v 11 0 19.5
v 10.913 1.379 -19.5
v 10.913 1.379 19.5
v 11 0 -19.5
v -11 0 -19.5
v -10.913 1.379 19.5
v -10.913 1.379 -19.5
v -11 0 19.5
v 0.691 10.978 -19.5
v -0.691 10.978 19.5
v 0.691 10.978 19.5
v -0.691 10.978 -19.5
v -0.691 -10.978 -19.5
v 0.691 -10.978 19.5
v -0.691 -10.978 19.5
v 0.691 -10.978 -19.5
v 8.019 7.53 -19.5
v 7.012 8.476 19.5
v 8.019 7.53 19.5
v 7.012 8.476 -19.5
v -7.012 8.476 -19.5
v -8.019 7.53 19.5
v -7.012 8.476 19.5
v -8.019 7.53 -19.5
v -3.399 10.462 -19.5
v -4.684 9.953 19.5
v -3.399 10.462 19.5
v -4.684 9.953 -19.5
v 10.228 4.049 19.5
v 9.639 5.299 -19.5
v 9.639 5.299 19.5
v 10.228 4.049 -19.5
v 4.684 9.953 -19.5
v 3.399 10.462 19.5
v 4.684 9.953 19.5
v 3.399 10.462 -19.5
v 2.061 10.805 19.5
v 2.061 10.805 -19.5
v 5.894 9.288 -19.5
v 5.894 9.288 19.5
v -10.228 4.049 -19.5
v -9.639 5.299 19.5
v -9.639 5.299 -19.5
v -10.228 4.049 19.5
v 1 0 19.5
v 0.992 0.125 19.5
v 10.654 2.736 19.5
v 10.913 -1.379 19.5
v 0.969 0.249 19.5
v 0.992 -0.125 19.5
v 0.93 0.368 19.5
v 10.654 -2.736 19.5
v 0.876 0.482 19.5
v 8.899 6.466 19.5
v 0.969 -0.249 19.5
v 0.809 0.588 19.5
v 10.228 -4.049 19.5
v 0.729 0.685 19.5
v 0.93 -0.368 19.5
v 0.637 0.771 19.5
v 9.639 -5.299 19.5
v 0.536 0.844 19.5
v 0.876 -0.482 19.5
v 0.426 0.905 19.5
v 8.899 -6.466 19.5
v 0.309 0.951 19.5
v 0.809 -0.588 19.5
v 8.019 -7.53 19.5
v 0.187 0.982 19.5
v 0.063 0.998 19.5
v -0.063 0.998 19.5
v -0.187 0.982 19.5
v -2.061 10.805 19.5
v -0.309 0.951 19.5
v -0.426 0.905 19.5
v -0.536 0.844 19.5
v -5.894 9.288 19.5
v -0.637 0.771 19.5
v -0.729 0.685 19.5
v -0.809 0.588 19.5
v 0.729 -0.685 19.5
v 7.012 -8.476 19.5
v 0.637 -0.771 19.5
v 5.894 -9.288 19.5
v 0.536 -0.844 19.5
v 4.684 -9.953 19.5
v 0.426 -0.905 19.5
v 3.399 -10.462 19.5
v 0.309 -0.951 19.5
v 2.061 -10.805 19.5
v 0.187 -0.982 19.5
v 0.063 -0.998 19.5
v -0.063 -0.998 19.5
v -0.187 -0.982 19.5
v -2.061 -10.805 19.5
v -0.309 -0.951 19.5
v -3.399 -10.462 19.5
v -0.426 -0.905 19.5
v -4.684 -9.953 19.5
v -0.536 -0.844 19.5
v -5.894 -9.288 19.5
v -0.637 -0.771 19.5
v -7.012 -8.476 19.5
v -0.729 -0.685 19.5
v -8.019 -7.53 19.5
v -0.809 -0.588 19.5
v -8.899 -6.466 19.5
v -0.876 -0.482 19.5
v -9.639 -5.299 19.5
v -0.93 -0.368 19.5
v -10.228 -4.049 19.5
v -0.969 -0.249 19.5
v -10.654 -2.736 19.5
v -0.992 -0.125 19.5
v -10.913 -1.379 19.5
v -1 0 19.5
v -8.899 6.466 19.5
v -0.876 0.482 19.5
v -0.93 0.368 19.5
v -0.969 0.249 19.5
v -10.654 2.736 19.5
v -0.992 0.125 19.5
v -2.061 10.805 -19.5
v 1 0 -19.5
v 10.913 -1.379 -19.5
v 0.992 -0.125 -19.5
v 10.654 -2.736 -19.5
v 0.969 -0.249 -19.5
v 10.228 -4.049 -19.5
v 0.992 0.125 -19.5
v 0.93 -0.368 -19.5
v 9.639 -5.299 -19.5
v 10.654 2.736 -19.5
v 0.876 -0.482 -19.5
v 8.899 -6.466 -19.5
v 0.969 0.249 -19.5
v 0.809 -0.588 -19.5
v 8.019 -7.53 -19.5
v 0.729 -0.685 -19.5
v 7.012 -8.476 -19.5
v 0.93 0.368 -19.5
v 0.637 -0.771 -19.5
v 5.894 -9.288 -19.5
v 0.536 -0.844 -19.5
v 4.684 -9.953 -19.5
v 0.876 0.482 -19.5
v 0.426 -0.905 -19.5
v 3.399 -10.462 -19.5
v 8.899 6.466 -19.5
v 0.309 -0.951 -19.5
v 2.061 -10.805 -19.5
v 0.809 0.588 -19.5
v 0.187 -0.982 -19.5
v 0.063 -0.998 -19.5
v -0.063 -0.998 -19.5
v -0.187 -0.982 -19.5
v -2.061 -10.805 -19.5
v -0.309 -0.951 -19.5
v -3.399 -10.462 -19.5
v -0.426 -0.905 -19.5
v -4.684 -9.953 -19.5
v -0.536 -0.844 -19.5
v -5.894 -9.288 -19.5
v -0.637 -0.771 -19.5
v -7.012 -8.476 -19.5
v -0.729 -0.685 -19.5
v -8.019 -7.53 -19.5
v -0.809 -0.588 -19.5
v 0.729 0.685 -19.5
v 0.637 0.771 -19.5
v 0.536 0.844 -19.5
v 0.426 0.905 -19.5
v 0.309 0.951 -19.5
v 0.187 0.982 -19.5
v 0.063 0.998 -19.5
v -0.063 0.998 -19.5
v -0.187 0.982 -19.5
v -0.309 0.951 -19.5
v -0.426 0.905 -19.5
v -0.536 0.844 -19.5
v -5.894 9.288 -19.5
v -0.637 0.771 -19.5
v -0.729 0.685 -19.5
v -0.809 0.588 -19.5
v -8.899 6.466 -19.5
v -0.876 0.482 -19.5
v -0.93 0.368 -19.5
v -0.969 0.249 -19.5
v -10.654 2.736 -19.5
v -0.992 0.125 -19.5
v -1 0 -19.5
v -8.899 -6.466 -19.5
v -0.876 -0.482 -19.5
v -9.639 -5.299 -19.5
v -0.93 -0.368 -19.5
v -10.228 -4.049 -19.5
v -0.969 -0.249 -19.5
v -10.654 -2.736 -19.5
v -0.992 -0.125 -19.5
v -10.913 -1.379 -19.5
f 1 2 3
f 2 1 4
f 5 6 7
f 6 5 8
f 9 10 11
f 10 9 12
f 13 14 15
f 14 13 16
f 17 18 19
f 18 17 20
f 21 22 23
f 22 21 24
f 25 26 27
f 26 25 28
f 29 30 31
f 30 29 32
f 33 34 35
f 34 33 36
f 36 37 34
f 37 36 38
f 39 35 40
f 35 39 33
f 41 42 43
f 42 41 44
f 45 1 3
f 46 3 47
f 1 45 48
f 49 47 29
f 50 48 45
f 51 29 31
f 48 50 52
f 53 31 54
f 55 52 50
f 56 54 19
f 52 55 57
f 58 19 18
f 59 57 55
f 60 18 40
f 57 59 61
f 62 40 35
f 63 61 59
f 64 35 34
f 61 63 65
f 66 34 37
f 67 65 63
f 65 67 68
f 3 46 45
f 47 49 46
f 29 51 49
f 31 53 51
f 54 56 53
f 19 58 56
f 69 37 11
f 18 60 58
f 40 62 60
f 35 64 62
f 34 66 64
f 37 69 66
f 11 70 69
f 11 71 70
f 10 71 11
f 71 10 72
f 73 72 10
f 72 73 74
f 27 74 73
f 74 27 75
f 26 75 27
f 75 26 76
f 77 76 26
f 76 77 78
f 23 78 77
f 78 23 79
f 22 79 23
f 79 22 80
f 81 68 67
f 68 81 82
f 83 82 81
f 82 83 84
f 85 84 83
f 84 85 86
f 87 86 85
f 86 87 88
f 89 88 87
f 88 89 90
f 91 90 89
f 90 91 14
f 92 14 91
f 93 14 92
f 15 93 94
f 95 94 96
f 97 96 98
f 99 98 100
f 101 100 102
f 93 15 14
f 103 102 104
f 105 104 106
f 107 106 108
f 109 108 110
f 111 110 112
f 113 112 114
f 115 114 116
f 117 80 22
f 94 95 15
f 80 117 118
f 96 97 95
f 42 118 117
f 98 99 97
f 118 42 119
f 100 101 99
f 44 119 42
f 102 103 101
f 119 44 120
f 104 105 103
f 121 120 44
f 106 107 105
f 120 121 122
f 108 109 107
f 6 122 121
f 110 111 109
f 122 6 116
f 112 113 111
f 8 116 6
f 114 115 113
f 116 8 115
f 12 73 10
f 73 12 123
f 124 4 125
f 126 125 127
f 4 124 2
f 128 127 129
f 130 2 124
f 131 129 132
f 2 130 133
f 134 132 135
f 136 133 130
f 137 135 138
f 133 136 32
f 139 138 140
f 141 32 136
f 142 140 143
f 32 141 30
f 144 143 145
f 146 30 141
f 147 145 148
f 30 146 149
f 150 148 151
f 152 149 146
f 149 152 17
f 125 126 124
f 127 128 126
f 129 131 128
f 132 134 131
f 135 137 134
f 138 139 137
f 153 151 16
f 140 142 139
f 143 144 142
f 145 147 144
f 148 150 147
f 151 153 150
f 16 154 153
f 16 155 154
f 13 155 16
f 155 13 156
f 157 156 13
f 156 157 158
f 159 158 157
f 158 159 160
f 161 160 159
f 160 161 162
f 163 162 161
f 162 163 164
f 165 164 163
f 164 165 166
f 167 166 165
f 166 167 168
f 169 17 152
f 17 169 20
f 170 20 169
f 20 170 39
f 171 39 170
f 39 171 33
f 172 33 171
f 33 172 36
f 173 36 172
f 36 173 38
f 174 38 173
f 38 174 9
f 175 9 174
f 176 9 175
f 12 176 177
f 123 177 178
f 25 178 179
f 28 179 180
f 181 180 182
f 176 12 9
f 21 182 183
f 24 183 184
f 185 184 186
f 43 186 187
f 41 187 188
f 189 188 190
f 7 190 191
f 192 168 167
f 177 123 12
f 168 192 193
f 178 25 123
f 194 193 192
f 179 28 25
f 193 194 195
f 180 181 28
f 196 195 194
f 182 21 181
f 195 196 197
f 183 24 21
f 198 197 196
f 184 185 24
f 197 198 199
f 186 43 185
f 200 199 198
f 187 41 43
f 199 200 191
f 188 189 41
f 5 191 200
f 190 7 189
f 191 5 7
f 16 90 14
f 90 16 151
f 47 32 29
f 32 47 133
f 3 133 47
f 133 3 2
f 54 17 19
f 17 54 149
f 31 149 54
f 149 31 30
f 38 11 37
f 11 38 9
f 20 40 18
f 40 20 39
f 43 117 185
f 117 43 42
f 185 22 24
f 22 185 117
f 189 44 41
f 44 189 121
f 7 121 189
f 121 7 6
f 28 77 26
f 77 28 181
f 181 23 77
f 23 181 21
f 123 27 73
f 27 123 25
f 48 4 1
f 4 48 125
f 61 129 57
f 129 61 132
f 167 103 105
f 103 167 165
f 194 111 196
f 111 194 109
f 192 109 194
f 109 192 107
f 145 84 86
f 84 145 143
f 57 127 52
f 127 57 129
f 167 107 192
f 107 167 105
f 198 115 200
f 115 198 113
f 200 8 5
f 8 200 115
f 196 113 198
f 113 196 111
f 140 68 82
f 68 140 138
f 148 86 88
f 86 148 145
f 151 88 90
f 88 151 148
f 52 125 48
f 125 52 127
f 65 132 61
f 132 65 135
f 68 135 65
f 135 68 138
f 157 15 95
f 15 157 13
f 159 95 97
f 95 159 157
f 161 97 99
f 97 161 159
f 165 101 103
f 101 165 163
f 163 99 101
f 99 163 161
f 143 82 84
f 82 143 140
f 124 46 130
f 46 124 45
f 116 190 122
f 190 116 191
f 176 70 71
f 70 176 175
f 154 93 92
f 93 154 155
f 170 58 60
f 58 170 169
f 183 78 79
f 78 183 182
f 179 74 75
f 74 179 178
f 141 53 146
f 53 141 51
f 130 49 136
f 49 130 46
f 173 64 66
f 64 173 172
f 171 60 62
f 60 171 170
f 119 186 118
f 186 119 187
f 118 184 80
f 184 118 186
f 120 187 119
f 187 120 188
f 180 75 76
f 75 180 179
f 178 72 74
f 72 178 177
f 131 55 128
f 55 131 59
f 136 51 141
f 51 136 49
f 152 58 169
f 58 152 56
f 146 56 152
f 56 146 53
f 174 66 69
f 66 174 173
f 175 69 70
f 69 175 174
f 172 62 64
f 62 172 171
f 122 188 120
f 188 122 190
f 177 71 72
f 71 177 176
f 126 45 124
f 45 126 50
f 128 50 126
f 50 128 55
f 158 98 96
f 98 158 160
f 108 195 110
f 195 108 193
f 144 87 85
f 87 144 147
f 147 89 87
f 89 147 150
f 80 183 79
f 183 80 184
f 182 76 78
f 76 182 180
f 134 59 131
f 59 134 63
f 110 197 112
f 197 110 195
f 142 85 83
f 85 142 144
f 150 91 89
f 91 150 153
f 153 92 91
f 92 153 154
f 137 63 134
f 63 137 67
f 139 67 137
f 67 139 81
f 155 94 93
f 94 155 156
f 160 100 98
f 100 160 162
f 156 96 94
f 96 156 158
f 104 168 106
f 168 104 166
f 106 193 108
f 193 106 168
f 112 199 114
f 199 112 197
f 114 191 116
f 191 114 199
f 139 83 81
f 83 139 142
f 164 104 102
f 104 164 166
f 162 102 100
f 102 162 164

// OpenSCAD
$fn = 50;


difference() {
	union() {
		translate(v = [0, 0, -19.5000000000]) {
			cylinder(h = 39, r = 11.0000000000);
		}
	}
	union() {
		translate(v = [0, 0, -100.0000000000]) {
			cylinder(h = 200, r = 1.0000000000);
		}
	}
}
